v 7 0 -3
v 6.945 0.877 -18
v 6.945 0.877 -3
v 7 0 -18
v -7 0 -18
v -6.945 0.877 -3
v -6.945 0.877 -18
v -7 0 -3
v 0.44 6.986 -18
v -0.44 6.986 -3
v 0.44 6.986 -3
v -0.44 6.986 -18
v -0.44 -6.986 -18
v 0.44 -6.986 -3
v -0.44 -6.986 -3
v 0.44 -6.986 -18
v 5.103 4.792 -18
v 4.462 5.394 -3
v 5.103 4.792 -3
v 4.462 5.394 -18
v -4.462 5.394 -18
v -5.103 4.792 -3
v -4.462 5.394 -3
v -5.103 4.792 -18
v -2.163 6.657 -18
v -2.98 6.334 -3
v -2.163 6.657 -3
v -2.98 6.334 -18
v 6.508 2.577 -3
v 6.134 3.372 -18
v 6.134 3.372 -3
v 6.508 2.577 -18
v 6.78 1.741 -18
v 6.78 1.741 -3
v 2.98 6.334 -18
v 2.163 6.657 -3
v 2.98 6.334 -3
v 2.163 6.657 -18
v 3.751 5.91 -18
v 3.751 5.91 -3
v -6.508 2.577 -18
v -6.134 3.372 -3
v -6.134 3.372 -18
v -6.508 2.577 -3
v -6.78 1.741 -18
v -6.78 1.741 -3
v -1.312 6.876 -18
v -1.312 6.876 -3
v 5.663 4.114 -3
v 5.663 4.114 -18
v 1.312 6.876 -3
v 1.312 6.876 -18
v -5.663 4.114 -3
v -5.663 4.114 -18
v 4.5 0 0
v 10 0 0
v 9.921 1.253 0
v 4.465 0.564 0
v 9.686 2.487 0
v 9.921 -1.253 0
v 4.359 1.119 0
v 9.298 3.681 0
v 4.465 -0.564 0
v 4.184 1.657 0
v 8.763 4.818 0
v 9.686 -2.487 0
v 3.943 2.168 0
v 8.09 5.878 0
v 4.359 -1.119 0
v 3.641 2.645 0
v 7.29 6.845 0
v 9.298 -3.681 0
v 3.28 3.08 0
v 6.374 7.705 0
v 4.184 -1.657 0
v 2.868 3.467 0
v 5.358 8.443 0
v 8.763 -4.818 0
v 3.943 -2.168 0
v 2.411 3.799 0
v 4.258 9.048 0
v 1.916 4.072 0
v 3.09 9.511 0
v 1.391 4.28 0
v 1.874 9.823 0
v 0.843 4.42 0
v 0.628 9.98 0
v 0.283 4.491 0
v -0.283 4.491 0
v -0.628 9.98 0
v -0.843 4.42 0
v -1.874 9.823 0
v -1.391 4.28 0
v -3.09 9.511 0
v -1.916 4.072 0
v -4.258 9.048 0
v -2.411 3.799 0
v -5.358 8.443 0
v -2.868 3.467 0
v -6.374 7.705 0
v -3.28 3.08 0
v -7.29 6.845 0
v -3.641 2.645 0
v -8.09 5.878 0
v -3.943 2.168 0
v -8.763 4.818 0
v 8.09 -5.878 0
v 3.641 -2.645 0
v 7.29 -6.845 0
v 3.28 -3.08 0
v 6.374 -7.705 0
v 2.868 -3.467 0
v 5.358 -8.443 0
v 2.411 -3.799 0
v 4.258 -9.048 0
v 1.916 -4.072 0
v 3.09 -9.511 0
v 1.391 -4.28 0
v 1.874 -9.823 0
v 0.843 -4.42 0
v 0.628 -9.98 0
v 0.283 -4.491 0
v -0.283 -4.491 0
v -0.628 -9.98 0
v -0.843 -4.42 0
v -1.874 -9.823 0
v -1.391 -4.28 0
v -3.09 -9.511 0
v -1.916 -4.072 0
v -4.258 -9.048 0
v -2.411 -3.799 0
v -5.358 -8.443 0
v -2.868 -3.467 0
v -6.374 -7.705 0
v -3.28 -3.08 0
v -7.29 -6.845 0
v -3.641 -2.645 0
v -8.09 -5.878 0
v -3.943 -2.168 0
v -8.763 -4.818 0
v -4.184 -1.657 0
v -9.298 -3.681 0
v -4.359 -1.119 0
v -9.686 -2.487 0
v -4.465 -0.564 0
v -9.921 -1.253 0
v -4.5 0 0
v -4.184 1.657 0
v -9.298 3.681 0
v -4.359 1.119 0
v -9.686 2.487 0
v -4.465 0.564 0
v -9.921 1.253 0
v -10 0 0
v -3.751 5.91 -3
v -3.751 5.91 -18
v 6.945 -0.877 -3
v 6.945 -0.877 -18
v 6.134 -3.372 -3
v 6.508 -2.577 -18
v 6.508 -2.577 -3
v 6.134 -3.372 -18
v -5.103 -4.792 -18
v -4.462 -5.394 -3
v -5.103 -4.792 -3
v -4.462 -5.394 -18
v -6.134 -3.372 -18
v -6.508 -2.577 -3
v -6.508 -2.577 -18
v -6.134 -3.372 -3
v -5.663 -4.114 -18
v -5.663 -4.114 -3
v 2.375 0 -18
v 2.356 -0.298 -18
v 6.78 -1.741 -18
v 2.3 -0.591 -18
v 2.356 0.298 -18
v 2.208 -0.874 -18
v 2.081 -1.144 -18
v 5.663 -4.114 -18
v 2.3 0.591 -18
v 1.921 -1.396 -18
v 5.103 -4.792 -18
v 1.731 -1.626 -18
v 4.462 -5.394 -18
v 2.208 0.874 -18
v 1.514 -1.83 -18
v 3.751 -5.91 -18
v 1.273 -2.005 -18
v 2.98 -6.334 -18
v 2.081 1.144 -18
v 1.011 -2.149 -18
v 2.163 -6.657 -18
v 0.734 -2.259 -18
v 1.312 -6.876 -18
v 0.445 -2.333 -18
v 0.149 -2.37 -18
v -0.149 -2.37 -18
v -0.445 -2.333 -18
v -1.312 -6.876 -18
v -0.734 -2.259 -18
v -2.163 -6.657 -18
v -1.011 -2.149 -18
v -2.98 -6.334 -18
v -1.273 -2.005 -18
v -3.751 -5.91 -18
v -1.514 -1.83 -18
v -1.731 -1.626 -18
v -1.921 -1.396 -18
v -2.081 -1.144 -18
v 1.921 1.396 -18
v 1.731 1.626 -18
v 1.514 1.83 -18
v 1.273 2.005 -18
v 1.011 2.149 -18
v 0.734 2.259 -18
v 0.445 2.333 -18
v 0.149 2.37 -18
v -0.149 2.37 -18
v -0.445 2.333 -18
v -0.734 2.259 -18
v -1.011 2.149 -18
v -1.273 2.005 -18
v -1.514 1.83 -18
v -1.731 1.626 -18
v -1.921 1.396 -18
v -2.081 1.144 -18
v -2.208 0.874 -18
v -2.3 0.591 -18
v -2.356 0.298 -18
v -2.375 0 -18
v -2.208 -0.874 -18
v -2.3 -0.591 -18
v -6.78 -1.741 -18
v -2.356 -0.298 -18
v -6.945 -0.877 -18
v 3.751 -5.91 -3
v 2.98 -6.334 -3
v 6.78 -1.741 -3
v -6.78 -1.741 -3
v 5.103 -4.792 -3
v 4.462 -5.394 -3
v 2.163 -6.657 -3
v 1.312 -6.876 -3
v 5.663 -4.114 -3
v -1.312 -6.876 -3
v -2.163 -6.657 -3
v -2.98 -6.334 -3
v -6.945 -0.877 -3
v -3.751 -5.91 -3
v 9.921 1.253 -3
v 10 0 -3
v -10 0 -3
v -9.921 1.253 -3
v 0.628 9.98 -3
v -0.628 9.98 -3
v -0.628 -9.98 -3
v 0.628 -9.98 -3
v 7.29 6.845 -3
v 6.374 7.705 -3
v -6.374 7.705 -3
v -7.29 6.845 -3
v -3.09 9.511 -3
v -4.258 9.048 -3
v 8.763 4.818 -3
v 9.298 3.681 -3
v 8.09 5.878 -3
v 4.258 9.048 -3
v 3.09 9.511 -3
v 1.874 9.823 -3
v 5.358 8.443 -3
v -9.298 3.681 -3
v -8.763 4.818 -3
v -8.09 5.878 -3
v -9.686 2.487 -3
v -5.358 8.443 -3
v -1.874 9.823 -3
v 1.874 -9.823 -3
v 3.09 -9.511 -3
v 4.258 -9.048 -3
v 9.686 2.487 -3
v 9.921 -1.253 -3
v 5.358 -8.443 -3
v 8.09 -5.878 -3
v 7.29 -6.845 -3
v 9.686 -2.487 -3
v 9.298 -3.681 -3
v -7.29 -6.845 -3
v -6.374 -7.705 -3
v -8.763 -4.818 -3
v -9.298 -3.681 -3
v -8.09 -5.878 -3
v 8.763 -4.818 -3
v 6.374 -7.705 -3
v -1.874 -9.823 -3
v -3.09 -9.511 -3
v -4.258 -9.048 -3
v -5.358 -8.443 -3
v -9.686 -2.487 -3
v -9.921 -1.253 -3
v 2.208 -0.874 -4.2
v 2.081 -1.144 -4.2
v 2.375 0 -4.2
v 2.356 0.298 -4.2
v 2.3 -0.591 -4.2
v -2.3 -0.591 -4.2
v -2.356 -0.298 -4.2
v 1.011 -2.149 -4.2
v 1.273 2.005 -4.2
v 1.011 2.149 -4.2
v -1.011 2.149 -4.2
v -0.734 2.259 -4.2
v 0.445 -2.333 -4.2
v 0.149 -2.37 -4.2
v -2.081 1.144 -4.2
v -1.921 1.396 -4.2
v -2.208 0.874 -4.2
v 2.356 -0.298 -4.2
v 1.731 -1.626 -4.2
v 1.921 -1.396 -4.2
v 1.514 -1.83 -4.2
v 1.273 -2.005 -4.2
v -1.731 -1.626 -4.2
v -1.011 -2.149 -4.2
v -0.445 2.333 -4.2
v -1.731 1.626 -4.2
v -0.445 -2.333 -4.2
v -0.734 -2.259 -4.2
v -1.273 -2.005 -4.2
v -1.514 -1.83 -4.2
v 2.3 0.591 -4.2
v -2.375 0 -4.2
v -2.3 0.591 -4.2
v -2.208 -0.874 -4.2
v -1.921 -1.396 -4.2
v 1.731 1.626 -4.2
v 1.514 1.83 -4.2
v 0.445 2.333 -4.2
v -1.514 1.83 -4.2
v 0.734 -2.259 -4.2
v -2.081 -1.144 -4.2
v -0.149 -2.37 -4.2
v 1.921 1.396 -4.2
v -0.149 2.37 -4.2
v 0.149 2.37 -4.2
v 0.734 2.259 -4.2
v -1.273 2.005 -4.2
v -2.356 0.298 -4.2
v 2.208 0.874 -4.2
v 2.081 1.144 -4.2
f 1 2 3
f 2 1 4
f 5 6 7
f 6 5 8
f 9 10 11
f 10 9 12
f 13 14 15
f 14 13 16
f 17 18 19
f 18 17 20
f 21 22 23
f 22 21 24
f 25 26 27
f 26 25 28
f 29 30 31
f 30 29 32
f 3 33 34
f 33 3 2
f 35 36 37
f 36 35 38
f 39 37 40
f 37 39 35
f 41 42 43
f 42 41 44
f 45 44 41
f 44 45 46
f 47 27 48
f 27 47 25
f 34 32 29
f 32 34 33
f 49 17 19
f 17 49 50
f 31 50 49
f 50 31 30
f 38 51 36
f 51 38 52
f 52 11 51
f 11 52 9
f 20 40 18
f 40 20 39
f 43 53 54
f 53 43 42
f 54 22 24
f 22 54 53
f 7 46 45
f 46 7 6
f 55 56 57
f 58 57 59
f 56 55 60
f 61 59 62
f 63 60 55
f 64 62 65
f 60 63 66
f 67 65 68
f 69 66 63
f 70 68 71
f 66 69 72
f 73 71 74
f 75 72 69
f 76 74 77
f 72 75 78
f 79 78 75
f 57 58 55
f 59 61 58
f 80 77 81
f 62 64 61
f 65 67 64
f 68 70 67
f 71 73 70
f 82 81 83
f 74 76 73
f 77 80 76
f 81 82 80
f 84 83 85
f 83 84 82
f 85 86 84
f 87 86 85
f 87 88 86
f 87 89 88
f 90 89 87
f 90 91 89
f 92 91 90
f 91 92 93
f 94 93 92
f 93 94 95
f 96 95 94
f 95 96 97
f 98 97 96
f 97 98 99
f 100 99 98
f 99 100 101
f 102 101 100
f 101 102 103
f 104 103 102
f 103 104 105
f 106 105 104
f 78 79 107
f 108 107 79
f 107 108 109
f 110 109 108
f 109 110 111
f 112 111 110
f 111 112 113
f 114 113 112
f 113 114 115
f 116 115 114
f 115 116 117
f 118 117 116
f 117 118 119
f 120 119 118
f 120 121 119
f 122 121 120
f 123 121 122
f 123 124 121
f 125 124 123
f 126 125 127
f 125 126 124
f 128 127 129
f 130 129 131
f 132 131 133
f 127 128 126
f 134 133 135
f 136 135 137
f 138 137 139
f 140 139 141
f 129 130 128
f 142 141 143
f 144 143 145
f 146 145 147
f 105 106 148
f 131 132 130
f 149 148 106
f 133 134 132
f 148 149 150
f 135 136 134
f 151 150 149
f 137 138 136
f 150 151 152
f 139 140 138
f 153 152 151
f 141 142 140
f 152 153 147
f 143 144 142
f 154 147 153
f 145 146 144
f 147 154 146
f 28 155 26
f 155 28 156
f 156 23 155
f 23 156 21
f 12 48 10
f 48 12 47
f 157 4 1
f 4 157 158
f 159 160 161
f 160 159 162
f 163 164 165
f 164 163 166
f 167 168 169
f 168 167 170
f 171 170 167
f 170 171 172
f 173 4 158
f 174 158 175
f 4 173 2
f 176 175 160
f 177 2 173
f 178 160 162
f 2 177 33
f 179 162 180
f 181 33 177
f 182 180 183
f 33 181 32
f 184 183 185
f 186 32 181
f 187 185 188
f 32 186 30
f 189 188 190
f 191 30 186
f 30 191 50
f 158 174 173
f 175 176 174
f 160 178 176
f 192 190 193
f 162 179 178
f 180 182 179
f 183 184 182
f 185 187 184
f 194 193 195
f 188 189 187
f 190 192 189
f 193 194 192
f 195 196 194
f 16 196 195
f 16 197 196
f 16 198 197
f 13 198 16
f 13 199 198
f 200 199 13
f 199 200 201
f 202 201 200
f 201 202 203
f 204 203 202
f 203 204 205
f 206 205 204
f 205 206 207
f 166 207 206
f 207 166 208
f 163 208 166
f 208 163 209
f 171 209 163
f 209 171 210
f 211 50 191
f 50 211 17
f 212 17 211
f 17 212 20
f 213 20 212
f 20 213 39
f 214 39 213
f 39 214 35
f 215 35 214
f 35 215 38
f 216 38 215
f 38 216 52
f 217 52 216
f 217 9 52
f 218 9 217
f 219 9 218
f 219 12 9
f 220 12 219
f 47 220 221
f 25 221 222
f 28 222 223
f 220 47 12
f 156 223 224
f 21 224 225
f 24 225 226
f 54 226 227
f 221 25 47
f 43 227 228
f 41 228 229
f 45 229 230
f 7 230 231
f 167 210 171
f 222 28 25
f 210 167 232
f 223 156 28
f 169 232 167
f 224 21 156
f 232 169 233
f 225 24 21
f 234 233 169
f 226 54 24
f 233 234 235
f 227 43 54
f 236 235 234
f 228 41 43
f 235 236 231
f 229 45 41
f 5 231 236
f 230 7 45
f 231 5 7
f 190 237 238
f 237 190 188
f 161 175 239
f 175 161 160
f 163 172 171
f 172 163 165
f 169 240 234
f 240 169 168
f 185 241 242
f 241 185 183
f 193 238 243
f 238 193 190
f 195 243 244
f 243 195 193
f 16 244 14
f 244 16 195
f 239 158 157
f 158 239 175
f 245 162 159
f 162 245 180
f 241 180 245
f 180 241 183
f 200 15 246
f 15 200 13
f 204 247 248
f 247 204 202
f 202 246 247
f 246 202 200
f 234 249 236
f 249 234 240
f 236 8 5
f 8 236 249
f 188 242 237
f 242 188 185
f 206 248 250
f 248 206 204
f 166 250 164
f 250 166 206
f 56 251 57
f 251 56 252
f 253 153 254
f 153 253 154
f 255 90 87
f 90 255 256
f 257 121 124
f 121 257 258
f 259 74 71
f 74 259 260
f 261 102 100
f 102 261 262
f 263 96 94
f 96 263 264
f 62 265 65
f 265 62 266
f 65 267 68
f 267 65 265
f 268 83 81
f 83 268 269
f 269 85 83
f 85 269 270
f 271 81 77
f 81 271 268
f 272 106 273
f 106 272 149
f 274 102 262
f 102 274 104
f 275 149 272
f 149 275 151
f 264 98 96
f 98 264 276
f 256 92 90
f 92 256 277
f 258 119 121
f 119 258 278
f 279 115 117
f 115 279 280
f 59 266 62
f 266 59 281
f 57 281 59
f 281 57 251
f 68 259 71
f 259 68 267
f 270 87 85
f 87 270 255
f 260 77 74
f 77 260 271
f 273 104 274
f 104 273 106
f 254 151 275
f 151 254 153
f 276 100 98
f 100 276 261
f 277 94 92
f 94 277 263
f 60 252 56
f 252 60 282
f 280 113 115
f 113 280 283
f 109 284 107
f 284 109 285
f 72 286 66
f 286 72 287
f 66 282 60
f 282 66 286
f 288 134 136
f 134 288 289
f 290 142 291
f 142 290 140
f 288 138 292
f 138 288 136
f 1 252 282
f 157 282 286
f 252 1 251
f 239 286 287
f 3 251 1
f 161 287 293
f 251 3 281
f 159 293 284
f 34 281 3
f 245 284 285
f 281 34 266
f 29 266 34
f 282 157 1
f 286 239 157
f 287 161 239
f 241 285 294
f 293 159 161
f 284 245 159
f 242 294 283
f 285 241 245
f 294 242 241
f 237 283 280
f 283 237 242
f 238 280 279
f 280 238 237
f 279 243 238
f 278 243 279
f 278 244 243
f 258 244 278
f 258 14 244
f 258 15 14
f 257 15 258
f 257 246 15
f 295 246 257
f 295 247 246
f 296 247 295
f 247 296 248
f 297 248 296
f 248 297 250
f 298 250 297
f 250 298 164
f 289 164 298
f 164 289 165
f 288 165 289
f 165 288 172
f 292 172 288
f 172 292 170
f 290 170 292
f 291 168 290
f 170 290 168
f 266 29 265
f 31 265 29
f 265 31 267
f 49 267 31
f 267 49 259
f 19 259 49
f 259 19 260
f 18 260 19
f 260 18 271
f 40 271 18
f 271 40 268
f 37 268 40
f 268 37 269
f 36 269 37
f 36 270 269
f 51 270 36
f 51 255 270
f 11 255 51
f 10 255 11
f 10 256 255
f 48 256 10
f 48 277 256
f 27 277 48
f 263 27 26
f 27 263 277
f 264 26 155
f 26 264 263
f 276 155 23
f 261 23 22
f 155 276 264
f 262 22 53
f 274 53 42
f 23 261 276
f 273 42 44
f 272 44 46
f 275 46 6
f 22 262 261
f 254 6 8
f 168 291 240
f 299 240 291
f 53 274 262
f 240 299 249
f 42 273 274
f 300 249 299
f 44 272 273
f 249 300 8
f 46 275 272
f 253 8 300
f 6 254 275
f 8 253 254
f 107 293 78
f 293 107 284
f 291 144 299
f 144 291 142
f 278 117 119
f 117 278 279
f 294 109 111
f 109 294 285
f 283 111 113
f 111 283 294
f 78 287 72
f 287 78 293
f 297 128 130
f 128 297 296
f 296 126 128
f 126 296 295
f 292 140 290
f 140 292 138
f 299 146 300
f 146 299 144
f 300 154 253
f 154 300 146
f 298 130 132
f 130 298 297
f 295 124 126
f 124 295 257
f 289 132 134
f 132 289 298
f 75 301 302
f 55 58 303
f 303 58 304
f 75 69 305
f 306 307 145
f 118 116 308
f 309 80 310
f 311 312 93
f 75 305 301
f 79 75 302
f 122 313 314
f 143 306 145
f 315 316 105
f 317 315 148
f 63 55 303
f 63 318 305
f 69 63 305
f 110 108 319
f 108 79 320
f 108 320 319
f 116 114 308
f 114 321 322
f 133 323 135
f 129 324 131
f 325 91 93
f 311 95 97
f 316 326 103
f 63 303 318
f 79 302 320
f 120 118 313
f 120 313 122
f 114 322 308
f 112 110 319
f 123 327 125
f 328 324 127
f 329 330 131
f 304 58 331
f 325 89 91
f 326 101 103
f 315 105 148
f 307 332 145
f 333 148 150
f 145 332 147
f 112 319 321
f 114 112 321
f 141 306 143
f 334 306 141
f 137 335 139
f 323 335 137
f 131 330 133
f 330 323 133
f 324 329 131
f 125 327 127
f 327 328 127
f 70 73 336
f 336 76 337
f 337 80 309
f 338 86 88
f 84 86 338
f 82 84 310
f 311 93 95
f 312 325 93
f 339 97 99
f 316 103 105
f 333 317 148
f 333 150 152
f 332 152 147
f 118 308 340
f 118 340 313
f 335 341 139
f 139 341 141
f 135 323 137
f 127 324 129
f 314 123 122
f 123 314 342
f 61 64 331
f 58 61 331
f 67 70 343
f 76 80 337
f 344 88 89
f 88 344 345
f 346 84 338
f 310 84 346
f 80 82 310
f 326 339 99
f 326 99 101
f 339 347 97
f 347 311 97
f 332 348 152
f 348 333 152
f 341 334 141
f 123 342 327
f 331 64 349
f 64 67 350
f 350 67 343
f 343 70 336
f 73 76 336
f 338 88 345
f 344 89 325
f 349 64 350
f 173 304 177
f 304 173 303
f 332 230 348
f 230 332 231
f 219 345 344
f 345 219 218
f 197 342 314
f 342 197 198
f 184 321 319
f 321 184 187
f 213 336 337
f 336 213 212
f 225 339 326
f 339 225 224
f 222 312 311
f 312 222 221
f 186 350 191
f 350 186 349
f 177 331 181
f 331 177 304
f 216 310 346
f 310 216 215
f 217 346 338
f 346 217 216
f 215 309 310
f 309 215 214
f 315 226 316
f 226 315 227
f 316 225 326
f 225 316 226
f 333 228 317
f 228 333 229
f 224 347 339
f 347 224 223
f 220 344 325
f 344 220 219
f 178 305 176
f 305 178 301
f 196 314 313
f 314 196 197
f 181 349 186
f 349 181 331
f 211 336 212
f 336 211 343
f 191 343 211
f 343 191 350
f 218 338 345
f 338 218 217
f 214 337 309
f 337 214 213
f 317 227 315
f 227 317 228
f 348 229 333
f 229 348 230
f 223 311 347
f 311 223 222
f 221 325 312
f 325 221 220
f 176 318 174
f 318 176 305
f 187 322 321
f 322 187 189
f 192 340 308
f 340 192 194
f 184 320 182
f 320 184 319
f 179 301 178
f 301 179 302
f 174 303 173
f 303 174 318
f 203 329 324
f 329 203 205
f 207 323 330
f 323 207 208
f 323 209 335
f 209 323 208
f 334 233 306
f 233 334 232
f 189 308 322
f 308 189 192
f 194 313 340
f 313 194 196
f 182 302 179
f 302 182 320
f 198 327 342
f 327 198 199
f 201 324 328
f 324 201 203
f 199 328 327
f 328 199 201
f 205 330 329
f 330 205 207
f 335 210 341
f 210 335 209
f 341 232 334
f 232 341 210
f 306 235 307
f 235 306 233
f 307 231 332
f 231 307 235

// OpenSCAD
$fn = 50;


difference() {
	union() {
		translate(v = [0, 0, -18.0000000000]) {
			cylinder(h = 18, r = 7.0000000000);
		}
		translate(v = [0, 0, -3.0000000000]) {
			cylinder(h = 3, r = 10.0000000000);
		}
	}
	union() {
		translate(v = [0, 0, 0]) {
			rotate(a = [0, 0, 0]) {
				difference() {
					union() {
						#translate(v = [0, 0, -18.0000000000]) {
							cylinder(h = 18, r = 2.2500000000);
						}
						#translate(v = [0, 0, -4.2000000000]) {
							cylinder(h = 4.2000000000, r1 = 2.3750000000, r2 = 4.5000000000);
						}
						#translate(v = [0, 0, -18.0000000000]) {
							cylinder(h = 18, r = 2.3750000000);
						}
						#translate(v = [0, 0, -18.0000000000]) {
							cylinder(h = 18, r = 2.2500000000);
						}
					}
					union();
				}
			}
		}
	}
}
